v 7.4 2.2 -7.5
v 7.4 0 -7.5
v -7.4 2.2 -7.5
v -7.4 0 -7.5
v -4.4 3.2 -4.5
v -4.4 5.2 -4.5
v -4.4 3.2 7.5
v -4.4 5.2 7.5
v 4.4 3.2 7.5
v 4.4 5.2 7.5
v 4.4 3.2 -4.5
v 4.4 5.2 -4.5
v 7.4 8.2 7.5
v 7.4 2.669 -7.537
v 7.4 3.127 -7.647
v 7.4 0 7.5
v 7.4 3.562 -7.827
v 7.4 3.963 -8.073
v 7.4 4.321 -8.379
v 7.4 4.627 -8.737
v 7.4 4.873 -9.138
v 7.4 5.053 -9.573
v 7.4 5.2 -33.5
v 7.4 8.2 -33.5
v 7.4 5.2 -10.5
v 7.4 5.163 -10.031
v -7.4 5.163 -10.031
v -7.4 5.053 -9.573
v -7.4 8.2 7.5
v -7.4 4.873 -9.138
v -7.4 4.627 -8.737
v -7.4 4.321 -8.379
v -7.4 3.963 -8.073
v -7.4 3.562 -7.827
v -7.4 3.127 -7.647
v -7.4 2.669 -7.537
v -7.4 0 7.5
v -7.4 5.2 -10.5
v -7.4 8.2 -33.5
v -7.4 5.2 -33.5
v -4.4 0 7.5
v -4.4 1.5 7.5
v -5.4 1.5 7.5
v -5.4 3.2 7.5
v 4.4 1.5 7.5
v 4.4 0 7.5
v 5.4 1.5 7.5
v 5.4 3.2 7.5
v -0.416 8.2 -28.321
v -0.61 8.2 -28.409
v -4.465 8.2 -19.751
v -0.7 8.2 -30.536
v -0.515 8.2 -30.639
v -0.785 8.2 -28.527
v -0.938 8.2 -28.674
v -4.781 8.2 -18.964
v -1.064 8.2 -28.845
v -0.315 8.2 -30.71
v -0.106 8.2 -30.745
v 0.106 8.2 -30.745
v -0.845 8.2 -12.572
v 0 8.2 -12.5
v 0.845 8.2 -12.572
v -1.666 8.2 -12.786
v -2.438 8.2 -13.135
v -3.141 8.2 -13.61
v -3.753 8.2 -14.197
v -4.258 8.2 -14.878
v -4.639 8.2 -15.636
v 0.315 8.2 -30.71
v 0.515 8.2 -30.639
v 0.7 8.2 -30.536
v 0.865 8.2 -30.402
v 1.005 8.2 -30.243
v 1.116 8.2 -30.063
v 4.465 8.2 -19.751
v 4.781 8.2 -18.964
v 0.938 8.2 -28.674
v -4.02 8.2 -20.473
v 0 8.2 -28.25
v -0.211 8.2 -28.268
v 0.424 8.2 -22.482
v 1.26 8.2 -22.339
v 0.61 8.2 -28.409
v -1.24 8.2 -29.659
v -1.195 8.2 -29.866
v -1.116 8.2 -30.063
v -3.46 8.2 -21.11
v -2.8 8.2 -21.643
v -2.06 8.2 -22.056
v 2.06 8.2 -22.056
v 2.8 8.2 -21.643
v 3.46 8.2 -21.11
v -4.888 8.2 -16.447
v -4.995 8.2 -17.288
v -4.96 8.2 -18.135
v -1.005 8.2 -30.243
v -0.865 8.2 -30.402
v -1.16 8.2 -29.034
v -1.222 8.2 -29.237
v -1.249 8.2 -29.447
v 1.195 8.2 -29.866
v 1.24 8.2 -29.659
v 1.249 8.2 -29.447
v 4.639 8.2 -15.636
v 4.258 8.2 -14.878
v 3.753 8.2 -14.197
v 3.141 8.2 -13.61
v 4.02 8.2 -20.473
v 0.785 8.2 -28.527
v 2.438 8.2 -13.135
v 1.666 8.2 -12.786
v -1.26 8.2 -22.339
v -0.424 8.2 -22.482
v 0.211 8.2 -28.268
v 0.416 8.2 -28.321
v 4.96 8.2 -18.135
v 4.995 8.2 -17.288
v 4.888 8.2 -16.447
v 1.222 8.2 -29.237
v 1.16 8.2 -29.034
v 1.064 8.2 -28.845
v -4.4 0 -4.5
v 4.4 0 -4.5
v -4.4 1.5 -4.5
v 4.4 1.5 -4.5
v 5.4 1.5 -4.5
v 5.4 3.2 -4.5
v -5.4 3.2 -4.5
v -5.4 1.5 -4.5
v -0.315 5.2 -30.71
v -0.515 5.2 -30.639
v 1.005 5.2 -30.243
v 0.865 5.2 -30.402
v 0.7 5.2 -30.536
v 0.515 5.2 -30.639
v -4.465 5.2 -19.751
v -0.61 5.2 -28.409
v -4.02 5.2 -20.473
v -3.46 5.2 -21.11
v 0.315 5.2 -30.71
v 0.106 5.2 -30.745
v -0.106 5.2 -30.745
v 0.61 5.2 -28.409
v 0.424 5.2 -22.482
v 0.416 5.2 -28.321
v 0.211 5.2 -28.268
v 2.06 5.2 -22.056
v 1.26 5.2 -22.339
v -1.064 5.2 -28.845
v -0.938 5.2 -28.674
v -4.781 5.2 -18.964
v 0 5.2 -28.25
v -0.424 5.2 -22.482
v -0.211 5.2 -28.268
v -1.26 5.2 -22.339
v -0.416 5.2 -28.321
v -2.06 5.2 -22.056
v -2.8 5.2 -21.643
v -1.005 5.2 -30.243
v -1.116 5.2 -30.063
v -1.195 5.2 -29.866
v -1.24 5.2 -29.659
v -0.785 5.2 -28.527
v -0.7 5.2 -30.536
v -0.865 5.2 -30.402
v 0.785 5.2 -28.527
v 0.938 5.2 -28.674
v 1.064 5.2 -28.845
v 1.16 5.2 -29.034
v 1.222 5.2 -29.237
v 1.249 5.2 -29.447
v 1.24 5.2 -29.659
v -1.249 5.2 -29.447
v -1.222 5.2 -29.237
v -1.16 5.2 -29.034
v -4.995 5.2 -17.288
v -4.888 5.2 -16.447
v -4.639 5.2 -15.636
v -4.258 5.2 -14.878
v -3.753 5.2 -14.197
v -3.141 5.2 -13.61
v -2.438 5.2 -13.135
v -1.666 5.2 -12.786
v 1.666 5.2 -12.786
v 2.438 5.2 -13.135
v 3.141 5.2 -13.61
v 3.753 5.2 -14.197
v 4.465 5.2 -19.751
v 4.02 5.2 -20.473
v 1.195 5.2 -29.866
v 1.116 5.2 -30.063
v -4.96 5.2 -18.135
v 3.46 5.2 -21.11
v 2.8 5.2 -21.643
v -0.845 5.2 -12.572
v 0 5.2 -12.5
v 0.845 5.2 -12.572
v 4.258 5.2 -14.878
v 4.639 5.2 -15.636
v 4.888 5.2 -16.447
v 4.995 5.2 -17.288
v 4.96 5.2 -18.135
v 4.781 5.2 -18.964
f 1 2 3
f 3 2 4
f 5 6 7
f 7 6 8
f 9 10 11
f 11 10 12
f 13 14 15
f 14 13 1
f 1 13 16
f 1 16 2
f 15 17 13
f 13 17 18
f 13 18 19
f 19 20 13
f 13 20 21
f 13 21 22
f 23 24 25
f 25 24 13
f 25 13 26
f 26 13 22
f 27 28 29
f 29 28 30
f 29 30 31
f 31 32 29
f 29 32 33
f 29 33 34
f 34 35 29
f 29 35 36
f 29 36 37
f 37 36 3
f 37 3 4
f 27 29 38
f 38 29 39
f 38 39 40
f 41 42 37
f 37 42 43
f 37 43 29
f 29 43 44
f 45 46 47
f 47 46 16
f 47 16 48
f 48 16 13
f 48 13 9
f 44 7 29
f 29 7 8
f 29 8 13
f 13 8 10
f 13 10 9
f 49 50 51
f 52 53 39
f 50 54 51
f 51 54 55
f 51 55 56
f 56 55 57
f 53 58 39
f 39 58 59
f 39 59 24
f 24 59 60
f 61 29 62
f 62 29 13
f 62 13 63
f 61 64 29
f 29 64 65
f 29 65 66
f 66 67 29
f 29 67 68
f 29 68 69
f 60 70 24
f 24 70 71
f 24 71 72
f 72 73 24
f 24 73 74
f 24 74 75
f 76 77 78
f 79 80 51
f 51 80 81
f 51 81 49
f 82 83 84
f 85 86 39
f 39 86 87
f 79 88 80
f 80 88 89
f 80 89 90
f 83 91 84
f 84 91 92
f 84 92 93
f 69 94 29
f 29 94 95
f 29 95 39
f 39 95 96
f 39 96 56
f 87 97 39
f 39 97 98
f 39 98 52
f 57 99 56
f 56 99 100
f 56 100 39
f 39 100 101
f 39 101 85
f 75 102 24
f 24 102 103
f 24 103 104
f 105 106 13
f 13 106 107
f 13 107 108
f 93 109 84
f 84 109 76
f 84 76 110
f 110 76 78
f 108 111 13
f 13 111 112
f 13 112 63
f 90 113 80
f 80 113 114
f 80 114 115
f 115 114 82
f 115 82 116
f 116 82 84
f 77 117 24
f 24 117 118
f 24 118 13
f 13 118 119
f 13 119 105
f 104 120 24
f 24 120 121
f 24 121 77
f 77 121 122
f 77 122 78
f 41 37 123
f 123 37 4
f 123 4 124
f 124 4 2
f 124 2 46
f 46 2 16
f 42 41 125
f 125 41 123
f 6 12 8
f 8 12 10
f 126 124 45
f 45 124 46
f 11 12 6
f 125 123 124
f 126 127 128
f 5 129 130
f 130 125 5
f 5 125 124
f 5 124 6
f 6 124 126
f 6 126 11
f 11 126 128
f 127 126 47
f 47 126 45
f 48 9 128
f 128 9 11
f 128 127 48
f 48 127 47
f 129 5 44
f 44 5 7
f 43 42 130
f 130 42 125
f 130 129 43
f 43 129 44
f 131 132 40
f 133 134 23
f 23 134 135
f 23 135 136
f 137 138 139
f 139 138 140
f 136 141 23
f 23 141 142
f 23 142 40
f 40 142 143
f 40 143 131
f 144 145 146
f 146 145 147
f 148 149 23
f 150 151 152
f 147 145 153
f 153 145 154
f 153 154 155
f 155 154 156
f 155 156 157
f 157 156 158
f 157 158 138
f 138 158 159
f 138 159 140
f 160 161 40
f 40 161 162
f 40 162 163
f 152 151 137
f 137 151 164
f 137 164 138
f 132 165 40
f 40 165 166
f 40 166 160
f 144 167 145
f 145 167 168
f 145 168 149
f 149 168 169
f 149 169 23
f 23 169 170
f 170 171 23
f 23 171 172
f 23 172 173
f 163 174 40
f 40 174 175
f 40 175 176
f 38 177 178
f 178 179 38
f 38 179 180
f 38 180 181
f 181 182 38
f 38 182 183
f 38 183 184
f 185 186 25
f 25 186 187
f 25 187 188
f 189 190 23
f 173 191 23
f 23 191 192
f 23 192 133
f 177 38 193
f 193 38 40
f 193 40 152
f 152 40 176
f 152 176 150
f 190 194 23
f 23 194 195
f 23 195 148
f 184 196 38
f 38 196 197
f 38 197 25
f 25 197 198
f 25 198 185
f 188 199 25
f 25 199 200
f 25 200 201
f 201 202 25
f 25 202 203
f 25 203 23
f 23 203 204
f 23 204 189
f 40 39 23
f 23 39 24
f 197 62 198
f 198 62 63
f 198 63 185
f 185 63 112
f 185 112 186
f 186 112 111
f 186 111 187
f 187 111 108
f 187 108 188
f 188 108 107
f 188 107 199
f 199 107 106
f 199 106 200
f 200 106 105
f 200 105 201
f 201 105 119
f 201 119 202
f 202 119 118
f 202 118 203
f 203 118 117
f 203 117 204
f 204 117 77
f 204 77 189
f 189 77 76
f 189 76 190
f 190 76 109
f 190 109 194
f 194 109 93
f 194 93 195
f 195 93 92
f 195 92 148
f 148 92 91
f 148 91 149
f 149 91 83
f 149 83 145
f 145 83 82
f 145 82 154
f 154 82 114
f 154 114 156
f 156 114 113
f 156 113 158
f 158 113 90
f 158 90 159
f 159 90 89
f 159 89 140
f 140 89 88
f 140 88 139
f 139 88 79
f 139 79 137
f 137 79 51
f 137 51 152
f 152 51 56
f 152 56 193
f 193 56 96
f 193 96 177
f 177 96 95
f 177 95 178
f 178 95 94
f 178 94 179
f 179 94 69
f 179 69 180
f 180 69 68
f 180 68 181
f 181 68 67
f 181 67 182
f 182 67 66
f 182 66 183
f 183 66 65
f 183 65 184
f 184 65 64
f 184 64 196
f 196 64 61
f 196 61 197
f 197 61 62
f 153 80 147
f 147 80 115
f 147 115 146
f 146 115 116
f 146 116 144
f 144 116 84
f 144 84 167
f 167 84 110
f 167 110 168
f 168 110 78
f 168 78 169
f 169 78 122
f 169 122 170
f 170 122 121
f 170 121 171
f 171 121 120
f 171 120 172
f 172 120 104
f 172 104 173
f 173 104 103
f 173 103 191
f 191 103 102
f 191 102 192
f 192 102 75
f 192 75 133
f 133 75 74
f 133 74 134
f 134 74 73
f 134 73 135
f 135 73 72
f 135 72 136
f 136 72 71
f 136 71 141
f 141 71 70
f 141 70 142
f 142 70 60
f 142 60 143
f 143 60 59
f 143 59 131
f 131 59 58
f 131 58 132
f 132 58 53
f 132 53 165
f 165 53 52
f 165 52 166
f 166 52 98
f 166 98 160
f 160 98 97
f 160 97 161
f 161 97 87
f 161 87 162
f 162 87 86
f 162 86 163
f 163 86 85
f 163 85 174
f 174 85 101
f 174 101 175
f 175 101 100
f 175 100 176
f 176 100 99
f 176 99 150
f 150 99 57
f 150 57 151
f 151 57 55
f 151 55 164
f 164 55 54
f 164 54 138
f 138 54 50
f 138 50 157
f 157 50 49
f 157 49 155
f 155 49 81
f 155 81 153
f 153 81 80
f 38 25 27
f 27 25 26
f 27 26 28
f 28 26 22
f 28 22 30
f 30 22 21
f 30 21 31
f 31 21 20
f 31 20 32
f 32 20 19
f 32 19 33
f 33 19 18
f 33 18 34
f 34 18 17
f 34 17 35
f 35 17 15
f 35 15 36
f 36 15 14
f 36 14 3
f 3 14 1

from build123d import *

# Parameters (mm, degrees)
SKETCH1_W                 = 14.8
SKETCH1_H                 = 15
BOSS_EXTRUDE1_DEPTH       = 8.2
SKETCH3_W                 = 8.8
SKETCH3_H                 = 5.2
CUT_EXTRUDE1_DEPTH        = 12
SKETCH5_W                 = 10.8
SKETCH5_H                 = 1.7
CUT_EXTRUDE2_DEPTH        = 12
SKETCH6_W                 = 14.8
SKETCH6_H                 = 3
BOSS_EXTRUDE2_DEPTH       = 26
SKETCH7_R                 = 5
CUT_EXTRUDE3_DEPTH        = 36.273928049
M3X0_5_TAPPED_HOLE1_D     = 2.5
M3X0_5_TAPPED_HOLE1_DEPTH = 7.5
M3X0_5_TAPPED_HOLE1_TIP   = 0.751075774
FILLET1_R                 = 3


with BuildPart() as part:
    # Sketch1 → Boss-Extrude1 (new body)
    with BuildSketch(Plane(origin=(0, 0, 0), x_dir=(1, 0, 0), z_dir=(0, 1, 0))):
        Rectangle(SKETCH1_W, SKETCH1_H)
    extrude(amount=BOSS_EXTRUDE1_DEPTH)

    # Sketch3 → Cut-Extrude1 (cut)
    with BuildSketch(Plane.XY.offset(7.5)):
        with Locations((0, 2.6)):
            Rectangle(SKETCH3_W, SKETCH3_H)
    extrude(amount=-CUT_EXTRUDE1_DEPTH, mode=Mode.SUBTRACT)

    # Sketch5 → Cut-Extrude2 (cut)
    with BuildSketch(Plane.XY.offset(7.5)):
        with Locations((0, 2.35)):
            Rectangle(SKETCH5_W, SKETCH5_H)
    extrude(amount=-CUT_EXTRUDE2_DEPTH, mode=Mode.SUBTRACT)

    # Sketch6 → Boss-Extrude2 (add)
    with BuildSketch(Plane(origin=(0, 0, -7.5), x_dir=(-1, 0, 0), z_dir=(0, 0, -1))):
        with Locations((0, 6.7)):
            Rectangle(SKETCH6_W, SKETCH6_H)
    extrude(amount=BOSS_EXTRUDE2_DEPTH)

    # Sketch7 → Cut-Extrude3 (cut, through all)
    with BuildSketch(Plane(origin=(0, 8.2, 0), x_dir=(1, 0, 0), z_dir=(0, 1, 0))):
        with Locations(Location((0, 17.5, 0), (0, 0, 270))):
            Circle(SKETCH7_R)
    extrude(amount=-CUT_EXTRUDE3_DEPTH, mode=Mode.SUBTRACT)

    # M3x0.5 Tapped Hole1
    with Locations(Plane(origin=(0, 8.2, 0), x_dir=(1, 0, 0), z_dir=(0, 1, 0))):
        with Locations((0, 29.5)):
            Hole(M3X0_5_TAPPED_HOLE1_D / 2, depth=M3X0_5_TAPPED_HOLE1_DEPTH)
            with Locations((0, 0, -(M3X0_5_TAPPED_HOLE1_DEPTH + M3X0_5_TAPPED_HOLE1_TIP / 2))):  # 118° drill point
                Cone(0, M3X0_5_TAPPED_HOLE1_D / 2, M3X0_5_TAPPED_HOLE1_TIP, mode=Mode.SUBTRACT)

    # Fillet1
    fillet1_edges = [part.edges().sort_by_distance(p)[0] for p in [
        (0, 5.2, -7.5),
    ]]
    fillet(fillet1_edges, radius=FILLET1_R)


solid = part.part
